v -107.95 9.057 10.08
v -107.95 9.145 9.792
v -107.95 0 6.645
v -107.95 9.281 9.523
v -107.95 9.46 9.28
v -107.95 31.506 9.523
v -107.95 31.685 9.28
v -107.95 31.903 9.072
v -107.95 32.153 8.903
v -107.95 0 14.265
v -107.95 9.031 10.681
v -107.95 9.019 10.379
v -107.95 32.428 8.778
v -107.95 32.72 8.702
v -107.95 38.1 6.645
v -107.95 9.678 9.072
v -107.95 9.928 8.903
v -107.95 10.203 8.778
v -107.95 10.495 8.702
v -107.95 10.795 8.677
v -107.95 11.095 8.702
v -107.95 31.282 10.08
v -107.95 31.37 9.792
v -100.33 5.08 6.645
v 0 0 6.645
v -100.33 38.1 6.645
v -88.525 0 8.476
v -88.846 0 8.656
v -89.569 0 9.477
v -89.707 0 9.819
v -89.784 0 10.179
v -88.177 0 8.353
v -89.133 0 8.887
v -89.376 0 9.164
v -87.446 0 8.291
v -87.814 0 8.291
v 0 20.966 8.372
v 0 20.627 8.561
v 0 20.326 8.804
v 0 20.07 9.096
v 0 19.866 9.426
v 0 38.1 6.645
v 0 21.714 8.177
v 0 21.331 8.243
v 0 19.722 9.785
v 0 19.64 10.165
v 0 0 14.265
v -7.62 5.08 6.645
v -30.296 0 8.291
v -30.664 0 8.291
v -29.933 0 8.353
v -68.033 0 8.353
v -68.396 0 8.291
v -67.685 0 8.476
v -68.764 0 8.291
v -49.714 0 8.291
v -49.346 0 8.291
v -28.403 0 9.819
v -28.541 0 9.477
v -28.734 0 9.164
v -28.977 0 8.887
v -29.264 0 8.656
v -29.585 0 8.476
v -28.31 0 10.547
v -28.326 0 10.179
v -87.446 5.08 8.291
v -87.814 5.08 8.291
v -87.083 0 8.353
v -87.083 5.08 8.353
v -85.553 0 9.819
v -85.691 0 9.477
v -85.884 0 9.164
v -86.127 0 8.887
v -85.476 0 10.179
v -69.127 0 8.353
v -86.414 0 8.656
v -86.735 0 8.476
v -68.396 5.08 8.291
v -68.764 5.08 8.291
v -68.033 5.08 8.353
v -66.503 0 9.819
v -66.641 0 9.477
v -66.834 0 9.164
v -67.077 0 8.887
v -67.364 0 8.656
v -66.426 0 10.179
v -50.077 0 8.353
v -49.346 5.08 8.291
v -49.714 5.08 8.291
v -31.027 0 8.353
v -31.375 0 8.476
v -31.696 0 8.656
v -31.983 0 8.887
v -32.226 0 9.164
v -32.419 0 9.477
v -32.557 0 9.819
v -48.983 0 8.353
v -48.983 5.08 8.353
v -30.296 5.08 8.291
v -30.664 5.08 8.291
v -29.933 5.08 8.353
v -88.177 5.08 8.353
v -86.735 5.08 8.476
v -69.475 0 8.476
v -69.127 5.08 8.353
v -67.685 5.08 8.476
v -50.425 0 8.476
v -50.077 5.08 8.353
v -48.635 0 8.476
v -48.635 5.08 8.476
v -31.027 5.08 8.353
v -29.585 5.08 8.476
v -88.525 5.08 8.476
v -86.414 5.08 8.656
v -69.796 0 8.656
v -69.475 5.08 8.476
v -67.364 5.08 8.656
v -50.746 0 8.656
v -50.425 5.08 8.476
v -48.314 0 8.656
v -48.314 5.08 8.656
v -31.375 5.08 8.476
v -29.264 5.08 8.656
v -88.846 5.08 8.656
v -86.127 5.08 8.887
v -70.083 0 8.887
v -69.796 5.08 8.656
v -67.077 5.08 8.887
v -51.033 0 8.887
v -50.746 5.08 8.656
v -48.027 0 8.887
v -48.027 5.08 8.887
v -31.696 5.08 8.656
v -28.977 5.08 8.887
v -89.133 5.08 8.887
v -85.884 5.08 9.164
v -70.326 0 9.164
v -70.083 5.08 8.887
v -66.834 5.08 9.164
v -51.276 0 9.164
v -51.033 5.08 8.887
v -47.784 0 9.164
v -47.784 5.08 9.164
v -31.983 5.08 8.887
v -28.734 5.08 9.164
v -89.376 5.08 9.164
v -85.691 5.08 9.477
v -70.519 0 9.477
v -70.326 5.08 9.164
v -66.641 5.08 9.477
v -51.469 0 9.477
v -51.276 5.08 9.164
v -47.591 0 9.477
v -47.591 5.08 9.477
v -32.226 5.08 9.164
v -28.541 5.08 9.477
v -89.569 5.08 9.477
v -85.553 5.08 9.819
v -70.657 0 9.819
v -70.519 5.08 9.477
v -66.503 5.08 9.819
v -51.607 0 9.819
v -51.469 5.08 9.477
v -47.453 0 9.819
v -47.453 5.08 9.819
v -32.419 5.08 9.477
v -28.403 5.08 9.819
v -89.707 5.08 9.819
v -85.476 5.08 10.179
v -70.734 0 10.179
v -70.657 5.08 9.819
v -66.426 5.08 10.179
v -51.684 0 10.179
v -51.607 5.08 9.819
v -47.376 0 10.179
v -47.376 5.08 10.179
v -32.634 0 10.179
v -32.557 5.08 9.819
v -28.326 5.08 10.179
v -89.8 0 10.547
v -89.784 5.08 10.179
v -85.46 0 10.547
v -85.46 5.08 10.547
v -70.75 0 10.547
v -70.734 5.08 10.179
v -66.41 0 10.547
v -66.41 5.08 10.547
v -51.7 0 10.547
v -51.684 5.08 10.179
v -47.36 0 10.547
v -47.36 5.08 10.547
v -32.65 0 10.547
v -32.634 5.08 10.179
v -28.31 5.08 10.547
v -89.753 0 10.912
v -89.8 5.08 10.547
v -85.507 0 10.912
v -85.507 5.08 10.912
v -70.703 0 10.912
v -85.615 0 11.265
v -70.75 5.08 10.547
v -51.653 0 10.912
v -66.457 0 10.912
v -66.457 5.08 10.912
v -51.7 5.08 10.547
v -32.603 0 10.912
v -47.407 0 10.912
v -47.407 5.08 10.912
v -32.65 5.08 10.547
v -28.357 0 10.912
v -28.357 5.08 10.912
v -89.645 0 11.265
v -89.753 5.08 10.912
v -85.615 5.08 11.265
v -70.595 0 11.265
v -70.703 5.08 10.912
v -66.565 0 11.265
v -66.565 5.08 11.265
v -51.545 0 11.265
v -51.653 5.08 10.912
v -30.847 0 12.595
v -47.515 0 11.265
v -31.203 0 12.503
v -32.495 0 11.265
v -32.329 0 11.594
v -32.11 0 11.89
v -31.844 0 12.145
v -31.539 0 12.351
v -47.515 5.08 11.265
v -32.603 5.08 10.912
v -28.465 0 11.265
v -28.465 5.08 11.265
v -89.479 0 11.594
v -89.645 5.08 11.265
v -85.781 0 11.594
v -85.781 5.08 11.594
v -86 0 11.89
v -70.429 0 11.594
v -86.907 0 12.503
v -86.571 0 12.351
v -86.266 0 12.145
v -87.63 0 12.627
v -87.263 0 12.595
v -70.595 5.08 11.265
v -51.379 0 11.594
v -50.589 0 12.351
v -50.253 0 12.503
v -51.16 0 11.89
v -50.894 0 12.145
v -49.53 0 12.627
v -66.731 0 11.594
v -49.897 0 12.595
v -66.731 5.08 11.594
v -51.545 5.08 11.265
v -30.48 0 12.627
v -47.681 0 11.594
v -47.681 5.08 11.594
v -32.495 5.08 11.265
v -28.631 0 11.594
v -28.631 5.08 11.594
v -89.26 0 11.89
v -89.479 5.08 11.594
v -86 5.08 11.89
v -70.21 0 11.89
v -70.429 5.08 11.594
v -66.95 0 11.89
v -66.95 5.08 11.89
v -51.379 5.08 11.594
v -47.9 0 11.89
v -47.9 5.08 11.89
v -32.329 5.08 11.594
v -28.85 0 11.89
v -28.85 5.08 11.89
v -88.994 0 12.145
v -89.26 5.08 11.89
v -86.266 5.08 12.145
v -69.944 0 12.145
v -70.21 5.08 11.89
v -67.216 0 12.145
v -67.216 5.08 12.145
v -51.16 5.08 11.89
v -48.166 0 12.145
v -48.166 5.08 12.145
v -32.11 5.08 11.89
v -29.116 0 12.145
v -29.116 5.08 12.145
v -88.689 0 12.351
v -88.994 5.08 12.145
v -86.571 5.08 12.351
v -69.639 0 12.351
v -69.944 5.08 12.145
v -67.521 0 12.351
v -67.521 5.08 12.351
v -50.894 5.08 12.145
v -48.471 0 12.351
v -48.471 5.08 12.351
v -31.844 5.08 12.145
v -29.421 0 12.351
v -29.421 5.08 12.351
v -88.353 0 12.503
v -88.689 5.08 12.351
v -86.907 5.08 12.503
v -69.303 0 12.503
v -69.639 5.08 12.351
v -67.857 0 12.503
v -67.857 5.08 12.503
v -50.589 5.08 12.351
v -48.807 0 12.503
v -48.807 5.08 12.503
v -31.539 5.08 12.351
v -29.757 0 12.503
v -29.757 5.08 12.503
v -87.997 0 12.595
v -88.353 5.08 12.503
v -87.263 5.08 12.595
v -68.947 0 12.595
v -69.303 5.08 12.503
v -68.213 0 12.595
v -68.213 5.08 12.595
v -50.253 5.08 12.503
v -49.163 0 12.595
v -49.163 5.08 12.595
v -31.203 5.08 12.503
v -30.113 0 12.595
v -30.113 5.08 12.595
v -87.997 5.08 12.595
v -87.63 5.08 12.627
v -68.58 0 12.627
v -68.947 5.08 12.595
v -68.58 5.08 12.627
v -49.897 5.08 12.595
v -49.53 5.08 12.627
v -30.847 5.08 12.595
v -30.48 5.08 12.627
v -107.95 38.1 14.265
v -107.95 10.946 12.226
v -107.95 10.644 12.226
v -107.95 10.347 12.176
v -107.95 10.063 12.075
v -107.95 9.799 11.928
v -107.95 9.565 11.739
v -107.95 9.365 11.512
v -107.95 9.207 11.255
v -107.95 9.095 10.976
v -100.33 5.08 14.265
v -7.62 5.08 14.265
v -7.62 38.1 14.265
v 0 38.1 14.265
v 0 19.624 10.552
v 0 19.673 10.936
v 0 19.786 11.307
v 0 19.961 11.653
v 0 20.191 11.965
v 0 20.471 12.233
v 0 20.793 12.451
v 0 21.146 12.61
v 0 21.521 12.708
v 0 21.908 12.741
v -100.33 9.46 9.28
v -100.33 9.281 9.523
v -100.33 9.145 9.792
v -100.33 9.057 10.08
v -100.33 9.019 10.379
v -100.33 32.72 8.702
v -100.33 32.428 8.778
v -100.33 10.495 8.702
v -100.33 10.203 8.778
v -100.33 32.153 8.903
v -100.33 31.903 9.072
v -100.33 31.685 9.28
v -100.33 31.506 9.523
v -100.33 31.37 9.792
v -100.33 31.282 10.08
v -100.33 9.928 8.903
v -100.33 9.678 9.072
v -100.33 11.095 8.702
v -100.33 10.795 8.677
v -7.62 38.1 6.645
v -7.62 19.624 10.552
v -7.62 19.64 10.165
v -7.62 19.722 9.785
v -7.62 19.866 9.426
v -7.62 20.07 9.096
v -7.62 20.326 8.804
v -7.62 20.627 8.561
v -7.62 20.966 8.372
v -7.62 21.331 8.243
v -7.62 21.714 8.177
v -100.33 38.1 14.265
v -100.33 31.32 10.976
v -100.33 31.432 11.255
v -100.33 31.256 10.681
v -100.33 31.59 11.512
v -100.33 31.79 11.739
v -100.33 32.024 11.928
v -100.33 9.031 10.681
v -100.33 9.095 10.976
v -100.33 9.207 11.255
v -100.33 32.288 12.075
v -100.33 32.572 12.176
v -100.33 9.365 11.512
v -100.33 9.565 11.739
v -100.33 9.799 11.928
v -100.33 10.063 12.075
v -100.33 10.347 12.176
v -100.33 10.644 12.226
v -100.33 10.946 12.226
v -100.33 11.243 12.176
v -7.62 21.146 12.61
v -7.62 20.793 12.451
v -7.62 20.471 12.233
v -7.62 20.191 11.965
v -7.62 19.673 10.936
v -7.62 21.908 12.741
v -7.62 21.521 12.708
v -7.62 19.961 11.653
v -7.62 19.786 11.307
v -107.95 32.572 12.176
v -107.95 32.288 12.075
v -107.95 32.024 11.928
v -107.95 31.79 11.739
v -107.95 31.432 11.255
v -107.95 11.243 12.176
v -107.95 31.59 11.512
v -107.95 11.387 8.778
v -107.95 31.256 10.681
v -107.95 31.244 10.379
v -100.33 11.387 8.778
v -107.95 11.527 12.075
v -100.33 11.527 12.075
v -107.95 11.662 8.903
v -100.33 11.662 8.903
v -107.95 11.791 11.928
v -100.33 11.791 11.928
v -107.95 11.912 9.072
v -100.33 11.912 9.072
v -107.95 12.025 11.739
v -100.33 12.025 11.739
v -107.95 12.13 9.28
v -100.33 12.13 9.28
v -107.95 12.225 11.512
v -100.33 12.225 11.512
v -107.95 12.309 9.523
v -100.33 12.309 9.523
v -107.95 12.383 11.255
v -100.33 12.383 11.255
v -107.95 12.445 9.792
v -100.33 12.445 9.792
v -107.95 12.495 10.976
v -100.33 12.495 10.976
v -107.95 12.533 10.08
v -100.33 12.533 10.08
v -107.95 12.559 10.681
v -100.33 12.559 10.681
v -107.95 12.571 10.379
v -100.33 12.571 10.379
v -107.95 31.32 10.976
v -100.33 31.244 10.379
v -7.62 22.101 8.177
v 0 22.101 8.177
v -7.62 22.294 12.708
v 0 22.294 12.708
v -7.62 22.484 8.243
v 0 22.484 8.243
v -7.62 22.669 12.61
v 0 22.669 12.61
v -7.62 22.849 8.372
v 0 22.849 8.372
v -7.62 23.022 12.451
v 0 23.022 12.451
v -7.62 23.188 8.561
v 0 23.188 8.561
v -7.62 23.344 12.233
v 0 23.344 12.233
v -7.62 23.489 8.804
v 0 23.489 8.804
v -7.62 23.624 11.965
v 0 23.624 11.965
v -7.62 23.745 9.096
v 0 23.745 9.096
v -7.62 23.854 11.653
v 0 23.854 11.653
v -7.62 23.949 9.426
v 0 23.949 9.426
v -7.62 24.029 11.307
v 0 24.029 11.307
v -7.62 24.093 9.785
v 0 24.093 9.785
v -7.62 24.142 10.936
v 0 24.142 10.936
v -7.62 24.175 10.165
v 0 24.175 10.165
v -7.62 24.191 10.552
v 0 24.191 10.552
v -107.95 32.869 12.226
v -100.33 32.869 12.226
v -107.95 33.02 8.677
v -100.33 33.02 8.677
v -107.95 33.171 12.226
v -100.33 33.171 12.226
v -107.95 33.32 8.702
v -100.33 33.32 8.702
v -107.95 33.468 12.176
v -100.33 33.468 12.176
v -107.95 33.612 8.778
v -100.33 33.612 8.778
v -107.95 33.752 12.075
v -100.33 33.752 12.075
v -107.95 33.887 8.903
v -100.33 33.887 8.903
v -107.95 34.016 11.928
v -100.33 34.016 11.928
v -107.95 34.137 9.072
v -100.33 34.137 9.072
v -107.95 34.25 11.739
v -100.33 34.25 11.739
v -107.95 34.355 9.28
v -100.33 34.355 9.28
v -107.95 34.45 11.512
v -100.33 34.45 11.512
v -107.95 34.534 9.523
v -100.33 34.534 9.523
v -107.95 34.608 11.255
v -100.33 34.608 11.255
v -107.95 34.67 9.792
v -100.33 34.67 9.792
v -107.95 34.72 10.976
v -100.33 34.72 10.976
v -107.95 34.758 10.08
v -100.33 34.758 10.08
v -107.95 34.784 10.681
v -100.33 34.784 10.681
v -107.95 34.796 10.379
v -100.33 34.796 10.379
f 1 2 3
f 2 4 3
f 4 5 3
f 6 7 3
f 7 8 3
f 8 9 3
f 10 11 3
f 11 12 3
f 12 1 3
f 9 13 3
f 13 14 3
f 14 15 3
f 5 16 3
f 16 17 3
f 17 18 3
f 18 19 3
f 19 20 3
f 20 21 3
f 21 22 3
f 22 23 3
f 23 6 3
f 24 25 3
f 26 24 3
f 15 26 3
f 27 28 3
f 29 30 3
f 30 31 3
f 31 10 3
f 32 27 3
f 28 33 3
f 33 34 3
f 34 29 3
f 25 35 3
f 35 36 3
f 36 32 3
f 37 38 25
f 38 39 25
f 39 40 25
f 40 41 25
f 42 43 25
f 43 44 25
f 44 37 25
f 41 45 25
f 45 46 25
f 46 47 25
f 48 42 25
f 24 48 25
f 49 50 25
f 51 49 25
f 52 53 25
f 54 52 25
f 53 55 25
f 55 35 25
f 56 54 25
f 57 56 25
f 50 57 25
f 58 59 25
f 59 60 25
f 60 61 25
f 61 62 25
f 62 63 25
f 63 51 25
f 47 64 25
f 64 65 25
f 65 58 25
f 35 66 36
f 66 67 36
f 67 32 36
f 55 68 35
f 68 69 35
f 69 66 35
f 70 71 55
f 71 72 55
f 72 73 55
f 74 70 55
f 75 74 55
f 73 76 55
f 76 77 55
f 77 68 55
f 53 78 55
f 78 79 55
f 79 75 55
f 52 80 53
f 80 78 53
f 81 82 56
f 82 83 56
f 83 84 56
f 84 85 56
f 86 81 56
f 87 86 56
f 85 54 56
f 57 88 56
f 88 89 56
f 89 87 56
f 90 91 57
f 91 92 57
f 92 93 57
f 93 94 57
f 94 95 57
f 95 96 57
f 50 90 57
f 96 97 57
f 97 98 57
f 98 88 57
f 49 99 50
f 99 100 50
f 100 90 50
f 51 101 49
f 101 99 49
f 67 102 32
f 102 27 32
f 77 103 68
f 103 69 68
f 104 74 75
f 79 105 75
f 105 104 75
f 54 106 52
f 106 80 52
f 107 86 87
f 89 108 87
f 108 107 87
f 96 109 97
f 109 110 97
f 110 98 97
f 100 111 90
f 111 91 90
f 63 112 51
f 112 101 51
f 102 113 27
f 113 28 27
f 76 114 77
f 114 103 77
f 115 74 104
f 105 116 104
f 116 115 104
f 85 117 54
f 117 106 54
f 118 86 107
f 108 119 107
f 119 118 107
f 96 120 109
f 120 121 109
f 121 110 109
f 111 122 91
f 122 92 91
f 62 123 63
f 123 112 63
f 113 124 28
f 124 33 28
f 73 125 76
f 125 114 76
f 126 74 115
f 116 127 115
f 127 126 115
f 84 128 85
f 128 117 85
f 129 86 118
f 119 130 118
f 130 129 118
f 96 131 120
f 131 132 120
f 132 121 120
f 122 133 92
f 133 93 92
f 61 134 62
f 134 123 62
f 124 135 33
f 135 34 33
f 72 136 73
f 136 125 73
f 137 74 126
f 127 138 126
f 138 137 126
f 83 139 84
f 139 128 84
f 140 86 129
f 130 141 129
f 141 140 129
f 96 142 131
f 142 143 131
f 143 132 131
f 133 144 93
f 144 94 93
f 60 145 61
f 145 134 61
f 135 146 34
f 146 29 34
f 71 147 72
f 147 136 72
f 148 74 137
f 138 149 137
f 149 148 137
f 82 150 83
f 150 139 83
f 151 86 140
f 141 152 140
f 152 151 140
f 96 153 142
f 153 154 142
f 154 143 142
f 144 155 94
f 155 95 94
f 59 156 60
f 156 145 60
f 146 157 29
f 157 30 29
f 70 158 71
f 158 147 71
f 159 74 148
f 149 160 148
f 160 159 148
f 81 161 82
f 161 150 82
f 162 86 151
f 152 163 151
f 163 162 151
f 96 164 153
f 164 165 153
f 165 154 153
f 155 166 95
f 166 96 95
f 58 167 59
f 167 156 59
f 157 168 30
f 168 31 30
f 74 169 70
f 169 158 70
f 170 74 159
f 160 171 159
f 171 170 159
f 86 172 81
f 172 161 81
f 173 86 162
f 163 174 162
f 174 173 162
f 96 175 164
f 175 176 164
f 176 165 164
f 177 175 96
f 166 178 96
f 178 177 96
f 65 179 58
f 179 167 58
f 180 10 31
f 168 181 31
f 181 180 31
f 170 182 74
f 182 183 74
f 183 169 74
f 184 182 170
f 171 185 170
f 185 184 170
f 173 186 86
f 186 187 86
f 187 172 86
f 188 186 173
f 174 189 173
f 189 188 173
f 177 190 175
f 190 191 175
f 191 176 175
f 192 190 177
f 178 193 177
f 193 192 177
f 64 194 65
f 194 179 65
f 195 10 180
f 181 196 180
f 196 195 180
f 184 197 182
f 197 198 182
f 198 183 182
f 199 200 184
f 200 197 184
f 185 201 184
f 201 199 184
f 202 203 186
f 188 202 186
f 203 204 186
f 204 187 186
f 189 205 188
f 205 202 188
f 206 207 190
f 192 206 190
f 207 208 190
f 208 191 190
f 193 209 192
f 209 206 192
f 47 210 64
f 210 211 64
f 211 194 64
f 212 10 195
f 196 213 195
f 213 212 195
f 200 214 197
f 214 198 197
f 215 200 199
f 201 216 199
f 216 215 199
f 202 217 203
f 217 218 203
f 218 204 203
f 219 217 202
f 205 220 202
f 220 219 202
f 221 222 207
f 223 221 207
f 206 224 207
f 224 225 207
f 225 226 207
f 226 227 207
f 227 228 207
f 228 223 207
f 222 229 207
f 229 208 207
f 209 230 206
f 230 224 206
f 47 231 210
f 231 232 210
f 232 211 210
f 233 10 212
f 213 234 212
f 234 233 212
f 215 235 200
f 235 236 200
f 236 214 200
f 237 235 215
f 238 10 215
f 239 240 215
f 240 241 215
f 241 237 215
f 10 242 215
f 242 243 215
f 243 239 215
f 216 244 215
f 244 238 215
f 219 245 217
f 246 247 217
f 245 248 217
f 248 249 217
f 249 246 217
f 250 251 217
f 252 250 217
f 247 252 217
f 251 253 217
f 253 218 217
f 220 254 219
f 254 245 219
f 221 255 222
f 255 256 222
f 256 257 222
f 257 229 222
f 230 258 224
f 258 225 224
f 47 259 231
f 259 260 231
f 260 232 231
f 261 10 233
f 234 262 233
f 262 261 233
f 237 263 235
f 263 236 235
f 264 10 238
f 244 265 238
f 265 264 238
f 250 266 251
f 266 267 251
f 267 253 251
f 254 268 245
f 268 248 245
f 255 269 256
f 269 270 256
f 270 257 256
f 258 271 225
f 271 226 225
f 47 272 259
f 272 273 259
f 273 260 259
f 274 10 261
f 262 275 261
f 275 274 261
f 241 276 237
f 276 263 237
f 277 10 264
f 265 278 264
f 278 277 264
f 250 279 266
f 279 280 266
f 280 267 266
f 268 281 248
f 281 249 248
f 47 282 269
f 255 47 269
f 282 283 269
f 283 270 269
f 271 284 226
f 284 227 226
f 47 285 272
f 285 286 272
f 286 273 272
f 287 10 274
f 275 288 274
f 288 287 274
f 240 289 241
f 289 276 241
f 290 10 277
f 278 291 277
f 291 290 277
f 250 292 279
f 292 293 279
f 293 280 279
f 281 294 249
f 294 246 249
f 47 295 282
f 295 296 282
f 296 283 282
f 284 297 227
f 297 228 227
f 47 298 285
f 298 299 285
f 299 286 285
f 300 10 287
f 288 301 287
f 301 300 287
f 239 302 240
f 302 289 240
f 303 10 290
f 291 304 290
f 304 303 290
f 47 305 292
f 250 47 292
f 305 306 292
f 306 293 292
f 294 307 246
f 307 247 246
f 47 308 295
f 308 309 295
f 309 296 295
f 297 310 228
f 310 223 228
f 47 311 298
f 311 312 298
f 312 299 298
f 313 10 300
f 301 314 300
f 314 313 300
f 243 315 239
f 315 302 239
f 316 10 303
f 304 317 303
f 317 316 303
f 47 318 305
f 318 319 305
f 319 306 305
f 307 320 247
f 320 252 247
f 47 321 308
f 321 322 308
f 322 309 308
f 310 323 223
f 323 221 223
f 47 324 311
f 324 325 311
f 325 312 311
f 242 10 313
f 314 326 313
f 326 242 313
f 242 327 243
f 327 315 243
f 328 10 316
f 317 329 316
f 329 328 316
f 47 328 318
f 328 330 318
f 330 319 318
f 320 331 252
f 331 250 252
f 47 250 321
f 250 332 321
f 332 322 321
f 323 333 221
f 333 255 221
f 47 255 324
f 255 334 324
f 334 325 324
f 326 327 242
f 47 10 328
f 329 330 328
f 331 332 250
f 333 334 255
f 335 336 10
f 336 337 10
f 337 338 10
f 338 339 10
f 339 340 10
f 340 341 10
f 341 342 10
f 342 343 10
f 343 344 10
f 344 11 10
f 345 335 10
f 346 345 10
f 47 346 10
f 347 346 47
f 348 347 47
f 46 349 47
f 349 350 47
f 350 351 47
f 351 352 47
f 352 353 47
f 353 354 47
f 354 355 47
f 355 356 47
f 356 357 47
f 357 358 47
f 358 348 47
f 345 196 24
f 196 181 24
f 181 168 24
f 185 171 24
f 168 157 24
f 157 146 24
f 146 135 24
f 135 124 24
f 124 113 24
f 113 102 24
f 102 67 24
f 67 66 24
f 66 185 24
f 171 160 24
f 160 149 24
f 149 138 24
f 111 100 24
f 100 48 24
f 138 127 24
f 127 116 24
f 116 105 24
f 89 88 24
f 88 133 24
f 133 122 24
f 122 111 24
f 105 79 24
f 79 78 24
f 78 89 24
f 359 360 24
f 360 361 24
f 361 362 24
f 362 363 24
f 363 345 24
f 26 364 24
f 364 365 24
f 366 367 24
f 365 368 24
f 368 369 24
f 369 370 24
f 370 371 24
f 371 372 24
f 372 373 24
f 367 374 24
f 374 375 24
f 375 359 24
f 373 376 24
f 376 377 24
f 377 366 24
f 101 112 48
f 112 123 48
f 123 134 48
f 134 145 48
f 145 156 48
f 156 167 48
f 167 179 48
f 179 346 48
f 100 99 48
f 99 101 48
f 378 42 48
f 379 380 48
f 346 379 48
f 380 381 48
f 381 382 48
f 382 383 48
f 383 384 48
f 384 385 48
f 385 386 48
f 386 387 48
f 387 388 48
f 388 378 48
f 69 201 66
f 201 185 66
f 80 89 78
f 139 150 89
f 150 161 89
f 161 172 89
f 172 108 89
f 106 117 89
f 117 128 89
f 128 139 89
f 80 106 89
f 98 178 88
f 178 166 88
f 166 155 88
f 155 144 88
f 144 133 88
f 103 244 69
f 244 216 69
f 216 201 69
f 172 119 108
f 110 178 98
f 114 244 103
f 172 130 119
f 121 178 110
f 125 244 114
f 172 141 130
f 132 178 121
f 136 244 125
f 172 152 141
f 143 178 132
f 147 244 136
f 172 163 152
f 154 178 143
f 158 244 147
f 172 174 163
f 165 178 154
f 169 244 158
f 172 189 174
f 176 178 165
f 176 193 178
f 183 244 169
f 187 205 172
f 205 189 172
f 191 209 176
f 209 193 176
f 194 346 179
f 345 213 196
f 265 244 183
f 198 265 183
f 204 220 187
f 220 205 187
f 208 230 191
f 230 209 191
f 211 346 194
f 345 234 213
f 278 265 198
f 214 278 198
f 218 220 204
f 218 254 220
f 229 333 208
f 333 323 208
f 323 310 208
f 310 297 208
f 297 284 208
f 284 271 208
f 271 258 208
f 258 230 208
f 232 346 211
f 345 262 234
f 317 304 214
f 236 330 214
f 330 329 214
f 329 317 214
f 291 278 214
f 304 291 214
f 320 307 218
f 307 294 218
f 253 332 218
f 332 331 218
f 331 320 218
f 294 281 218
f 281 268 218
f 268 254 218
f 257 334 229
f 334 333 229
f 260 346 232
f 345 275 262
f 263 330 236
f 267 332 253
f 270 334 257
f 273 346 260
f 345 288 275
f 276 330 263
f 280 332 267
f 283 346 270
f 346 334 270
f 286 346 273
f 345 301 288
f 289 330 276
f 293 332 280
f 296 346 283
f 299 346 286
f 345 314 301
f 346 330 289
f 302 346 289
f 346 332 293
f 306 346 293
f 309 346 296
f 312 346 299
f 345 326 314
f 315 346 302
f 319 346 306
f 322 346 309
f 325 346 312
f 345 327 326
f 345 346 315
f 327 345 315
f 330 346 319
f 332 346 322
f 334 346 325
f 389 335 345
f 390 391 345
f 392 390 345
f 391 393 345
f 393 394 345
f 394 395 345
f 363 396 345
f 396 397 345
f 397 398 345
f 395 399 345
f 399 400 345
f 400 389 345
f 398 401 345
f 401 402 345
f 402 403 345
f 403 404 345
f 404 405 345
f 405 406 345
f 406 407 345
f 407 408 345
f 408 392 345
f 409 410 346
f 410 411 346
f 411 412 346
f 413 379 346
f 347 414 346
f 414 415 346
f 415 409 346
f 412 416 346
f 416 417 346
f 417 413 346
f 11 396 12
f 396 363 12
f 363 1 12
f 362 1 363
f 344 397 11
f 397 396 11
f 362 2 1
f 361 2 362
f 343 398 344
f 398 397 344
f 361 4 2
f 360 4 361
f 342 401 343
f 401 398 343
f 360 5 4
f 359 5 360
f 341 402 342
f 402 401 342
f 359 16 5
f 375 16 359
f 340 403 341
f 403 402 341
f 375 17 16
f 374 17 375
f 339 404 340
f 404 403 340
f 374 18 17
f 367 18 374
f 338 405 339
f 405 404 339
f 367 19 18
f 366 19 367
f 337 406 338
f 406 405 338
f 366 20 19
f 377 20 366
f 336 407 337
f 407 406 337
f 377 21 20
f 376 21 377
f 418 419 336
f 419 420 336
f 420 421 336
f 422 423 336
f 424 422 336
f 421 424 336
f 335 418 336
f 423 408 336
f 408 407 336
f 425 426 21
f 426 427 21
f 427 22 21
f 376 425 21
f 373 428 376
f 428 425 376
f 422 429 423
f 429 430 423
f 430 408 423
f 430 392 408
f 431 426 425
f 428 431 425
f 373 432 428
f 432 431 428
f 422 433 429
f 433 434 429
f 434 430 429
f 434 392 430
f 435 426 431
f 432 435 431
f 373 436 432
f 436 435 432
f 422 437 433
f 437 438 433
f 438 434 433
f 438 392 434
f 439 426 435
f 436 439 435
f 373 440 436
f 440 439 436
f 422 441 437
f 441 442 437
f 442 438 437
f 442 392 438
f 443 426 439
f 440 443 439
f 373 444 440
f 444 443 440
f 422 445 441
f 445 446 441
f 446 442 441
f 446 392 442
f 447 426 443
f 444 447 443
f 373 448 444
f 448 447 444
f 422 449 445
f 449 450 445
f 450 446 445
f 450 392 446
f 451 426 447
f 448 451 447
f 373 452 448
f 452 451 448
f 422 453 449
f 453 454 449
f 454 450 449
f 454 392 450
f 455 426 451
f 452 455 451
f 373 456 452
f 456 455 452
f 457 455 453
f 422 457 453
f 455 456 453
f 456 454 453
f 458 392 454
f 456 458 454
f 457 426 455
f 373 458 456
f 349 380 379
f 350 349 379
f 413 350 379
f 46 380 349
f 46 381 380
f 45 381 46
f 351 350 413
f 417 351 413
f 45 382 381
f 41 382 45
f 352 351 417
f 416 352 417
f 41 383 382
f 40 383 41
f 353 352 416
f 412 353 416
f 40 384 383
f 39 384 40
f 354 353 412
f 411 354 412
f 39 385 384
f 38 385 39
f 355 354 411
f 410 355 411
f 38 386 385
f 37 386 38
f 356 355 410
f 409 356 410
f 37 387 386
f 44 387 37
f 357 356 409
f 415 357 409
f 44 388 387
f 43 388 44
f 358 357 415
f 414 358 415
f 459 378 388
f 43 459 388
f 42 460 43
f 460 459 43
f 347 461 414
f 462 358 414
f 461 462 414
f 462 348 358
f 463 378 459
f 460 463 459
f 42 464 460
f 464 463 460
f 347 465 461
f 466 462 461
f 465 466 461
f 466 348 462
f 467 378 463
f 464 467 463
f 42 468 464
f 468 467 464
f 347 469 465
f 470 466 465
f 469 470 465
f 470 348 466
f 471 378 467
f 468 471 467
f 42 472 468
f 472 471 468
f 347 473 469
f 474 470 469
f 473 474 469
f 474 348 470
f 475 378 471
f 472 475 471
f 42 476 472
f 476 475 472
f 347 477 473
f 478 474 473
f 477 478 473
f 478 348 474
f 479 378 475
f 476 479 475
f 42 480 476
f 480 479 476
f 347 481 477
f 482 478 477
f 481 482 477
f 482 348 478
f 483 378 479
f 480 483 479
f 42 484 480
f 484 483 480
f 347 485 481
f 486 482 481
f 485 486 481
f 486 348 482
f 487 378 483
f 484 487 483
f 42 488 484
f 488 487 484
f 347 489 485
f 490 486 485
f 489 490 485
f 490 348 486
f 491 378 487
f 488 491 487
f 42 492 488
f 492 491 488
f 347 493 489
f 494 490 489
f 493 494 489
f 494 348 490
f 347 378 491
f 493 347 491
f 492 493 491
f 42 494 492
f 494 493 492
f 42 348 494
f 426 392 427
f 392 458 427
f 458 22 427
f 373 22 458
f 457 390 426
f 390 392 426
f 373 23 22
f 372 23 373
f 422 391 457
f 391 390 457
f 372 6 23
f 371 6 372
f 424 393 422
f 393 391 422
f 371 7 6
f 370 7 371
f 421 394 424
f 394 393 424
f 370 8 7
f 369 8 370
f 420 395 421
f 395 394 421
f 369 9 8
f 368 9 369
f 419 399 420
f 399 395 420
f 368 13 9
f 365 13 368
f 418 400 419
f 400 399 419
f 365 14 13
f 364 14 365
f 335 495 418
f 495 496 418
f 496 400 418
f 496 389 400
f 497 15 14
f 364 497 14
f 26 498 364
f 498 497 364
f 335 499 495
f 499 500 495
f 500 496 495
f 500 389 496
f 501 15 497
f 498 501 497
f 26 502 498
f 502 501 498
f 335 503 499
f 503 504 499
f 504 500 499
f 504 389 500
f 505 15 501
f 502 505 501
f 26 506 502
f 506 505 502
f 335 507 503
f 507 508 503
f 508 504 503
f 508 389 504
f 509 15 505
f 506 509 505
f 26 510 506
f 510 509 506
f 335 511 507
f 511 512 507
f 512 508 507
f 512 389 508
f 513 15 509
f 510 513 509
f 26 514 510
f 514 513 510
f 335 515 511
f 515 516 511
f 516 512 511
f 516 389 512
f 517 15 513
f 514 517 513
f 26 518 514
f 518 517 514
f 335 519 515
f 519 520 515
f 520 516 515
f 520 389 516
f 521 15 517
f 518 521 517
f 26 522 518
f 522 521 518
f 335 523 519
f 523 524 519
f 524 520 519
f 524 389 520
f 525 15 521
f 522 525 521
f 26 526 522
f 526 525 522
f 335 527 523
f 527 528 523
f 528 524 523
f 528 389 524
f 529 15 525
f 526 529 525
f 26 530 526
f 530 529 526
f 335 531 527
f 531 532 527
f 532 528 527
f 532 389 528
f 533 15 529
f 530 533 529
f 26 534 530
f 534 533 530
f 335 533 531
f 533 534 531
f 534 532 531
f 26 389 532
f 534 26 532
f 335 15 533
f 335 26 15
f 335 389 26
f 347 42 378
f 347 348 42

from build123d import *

# Parameters (mm, degrees)
SKETCH1_W           = 107.95
SKETCH1_H           = 7.62
BOSS_EXTRUDE1_DEPTH = 5.08
SKETCH2_W           = 7.62
SKETCH2_H           = 7.62
BOSS_EXTRUDE2_DEPTH = 33.02
SKETCH3_R           = 1.778
CUT_EXTRUDE1_DEPTH  = 7.62
SKETCH4_R           = 2.286
CUT_EXTRUDE2_DEPTH  = 7.62
SKETCH5_R           = 2.1717
CUT_EXTRUDE3_DEPTH  = 5.08


with BuildPart() as part:
    # Sketch1 → Boss-Extrude1 (new body)
    with BuildSketch(Plane(origin=(0, 0, 0), x_dir=(1, 0, 0), z_dir=(0, 1, 0))):
        with Locations((-53.975, -10.454877129)):
            Rectangle(SKETCH1_W, SKETCH1_H)
    extrude(amount=BOSS_EXTRUDE1_DEPTH)

    # Sketch2 → Boss-Extrude2 (add)
    with BuildSketch(Plane(origin=(0, 5.08, 0), x_dir=(1, 0, 0), z_dir=(0, 1, 0))):
        with Locations((-104.14, -10.454877129)):
            Rectangle(SKETCH2_W, SKETCH2_H)
        with Locations((-3.81, -10.454877129)):
            Rectangle(SKETCH2_W, SKETCH2_H)
    extrude(amount=BOSS_EXTRUDE2_DEPTH)

    # Sketch3 → Cut-Extrude1 (cut)
    with BuildSketch(Plane(origin=(-100.33, 0, 0), x_dir=(0, 0, -1), z_dir=(1, 0, 0))):
        with Locations((-10.454877129, 33.02)):
            Circle(SKETCH3_R)
        with Locations((-10.454877129, 10.795)):
            Circle(SKETCH3_R)
    extrude(amount=-CUT_EXTRUDE1_DEPTH, mode=Mode.SUBTRACT)

    # Sketch4 → Cut-Extrude2 (cut)
    with BuildSketch(Plane.ZY.offset(7.62)):
        with Locations((10.454877129, 21.9075)):
            Circle(SKETCH4_R)
    extrude(amount=-CUT_EXTRUDE2_DEPTH, mode=Mode.SUBTRACT)

    # Sketch5 → Cut-Extrude3 (cut)
    with BuildSketch(Plane(origin=(0, 5.08, 0), x_dir=(1, 0, 0), z_dir=(0, 1, 0))):
        with Locations(Location((-87.63, -10.454877129, 0), (0, 0, 270))):
            Circle(SKETCH5_R)
        with Locations(Location((-68.58, -10.454877129, 0), (0, 0, 270))):
            Circle(SKETCH5_R)
        with Locations(Location((-49.53, -10.454877129, 0), (0, 0, 270))):
            Circle(SKETCH5_R)
        with Locations(Location((-30.48, -10.454877129, 0), (0, 0, 270))):
            Circle(SKETCH5_R)
    extrude(amount=-CUT_EXTRUDE3_DEPTH, mode=Mode.SUBTRACT)


solid = part.part
